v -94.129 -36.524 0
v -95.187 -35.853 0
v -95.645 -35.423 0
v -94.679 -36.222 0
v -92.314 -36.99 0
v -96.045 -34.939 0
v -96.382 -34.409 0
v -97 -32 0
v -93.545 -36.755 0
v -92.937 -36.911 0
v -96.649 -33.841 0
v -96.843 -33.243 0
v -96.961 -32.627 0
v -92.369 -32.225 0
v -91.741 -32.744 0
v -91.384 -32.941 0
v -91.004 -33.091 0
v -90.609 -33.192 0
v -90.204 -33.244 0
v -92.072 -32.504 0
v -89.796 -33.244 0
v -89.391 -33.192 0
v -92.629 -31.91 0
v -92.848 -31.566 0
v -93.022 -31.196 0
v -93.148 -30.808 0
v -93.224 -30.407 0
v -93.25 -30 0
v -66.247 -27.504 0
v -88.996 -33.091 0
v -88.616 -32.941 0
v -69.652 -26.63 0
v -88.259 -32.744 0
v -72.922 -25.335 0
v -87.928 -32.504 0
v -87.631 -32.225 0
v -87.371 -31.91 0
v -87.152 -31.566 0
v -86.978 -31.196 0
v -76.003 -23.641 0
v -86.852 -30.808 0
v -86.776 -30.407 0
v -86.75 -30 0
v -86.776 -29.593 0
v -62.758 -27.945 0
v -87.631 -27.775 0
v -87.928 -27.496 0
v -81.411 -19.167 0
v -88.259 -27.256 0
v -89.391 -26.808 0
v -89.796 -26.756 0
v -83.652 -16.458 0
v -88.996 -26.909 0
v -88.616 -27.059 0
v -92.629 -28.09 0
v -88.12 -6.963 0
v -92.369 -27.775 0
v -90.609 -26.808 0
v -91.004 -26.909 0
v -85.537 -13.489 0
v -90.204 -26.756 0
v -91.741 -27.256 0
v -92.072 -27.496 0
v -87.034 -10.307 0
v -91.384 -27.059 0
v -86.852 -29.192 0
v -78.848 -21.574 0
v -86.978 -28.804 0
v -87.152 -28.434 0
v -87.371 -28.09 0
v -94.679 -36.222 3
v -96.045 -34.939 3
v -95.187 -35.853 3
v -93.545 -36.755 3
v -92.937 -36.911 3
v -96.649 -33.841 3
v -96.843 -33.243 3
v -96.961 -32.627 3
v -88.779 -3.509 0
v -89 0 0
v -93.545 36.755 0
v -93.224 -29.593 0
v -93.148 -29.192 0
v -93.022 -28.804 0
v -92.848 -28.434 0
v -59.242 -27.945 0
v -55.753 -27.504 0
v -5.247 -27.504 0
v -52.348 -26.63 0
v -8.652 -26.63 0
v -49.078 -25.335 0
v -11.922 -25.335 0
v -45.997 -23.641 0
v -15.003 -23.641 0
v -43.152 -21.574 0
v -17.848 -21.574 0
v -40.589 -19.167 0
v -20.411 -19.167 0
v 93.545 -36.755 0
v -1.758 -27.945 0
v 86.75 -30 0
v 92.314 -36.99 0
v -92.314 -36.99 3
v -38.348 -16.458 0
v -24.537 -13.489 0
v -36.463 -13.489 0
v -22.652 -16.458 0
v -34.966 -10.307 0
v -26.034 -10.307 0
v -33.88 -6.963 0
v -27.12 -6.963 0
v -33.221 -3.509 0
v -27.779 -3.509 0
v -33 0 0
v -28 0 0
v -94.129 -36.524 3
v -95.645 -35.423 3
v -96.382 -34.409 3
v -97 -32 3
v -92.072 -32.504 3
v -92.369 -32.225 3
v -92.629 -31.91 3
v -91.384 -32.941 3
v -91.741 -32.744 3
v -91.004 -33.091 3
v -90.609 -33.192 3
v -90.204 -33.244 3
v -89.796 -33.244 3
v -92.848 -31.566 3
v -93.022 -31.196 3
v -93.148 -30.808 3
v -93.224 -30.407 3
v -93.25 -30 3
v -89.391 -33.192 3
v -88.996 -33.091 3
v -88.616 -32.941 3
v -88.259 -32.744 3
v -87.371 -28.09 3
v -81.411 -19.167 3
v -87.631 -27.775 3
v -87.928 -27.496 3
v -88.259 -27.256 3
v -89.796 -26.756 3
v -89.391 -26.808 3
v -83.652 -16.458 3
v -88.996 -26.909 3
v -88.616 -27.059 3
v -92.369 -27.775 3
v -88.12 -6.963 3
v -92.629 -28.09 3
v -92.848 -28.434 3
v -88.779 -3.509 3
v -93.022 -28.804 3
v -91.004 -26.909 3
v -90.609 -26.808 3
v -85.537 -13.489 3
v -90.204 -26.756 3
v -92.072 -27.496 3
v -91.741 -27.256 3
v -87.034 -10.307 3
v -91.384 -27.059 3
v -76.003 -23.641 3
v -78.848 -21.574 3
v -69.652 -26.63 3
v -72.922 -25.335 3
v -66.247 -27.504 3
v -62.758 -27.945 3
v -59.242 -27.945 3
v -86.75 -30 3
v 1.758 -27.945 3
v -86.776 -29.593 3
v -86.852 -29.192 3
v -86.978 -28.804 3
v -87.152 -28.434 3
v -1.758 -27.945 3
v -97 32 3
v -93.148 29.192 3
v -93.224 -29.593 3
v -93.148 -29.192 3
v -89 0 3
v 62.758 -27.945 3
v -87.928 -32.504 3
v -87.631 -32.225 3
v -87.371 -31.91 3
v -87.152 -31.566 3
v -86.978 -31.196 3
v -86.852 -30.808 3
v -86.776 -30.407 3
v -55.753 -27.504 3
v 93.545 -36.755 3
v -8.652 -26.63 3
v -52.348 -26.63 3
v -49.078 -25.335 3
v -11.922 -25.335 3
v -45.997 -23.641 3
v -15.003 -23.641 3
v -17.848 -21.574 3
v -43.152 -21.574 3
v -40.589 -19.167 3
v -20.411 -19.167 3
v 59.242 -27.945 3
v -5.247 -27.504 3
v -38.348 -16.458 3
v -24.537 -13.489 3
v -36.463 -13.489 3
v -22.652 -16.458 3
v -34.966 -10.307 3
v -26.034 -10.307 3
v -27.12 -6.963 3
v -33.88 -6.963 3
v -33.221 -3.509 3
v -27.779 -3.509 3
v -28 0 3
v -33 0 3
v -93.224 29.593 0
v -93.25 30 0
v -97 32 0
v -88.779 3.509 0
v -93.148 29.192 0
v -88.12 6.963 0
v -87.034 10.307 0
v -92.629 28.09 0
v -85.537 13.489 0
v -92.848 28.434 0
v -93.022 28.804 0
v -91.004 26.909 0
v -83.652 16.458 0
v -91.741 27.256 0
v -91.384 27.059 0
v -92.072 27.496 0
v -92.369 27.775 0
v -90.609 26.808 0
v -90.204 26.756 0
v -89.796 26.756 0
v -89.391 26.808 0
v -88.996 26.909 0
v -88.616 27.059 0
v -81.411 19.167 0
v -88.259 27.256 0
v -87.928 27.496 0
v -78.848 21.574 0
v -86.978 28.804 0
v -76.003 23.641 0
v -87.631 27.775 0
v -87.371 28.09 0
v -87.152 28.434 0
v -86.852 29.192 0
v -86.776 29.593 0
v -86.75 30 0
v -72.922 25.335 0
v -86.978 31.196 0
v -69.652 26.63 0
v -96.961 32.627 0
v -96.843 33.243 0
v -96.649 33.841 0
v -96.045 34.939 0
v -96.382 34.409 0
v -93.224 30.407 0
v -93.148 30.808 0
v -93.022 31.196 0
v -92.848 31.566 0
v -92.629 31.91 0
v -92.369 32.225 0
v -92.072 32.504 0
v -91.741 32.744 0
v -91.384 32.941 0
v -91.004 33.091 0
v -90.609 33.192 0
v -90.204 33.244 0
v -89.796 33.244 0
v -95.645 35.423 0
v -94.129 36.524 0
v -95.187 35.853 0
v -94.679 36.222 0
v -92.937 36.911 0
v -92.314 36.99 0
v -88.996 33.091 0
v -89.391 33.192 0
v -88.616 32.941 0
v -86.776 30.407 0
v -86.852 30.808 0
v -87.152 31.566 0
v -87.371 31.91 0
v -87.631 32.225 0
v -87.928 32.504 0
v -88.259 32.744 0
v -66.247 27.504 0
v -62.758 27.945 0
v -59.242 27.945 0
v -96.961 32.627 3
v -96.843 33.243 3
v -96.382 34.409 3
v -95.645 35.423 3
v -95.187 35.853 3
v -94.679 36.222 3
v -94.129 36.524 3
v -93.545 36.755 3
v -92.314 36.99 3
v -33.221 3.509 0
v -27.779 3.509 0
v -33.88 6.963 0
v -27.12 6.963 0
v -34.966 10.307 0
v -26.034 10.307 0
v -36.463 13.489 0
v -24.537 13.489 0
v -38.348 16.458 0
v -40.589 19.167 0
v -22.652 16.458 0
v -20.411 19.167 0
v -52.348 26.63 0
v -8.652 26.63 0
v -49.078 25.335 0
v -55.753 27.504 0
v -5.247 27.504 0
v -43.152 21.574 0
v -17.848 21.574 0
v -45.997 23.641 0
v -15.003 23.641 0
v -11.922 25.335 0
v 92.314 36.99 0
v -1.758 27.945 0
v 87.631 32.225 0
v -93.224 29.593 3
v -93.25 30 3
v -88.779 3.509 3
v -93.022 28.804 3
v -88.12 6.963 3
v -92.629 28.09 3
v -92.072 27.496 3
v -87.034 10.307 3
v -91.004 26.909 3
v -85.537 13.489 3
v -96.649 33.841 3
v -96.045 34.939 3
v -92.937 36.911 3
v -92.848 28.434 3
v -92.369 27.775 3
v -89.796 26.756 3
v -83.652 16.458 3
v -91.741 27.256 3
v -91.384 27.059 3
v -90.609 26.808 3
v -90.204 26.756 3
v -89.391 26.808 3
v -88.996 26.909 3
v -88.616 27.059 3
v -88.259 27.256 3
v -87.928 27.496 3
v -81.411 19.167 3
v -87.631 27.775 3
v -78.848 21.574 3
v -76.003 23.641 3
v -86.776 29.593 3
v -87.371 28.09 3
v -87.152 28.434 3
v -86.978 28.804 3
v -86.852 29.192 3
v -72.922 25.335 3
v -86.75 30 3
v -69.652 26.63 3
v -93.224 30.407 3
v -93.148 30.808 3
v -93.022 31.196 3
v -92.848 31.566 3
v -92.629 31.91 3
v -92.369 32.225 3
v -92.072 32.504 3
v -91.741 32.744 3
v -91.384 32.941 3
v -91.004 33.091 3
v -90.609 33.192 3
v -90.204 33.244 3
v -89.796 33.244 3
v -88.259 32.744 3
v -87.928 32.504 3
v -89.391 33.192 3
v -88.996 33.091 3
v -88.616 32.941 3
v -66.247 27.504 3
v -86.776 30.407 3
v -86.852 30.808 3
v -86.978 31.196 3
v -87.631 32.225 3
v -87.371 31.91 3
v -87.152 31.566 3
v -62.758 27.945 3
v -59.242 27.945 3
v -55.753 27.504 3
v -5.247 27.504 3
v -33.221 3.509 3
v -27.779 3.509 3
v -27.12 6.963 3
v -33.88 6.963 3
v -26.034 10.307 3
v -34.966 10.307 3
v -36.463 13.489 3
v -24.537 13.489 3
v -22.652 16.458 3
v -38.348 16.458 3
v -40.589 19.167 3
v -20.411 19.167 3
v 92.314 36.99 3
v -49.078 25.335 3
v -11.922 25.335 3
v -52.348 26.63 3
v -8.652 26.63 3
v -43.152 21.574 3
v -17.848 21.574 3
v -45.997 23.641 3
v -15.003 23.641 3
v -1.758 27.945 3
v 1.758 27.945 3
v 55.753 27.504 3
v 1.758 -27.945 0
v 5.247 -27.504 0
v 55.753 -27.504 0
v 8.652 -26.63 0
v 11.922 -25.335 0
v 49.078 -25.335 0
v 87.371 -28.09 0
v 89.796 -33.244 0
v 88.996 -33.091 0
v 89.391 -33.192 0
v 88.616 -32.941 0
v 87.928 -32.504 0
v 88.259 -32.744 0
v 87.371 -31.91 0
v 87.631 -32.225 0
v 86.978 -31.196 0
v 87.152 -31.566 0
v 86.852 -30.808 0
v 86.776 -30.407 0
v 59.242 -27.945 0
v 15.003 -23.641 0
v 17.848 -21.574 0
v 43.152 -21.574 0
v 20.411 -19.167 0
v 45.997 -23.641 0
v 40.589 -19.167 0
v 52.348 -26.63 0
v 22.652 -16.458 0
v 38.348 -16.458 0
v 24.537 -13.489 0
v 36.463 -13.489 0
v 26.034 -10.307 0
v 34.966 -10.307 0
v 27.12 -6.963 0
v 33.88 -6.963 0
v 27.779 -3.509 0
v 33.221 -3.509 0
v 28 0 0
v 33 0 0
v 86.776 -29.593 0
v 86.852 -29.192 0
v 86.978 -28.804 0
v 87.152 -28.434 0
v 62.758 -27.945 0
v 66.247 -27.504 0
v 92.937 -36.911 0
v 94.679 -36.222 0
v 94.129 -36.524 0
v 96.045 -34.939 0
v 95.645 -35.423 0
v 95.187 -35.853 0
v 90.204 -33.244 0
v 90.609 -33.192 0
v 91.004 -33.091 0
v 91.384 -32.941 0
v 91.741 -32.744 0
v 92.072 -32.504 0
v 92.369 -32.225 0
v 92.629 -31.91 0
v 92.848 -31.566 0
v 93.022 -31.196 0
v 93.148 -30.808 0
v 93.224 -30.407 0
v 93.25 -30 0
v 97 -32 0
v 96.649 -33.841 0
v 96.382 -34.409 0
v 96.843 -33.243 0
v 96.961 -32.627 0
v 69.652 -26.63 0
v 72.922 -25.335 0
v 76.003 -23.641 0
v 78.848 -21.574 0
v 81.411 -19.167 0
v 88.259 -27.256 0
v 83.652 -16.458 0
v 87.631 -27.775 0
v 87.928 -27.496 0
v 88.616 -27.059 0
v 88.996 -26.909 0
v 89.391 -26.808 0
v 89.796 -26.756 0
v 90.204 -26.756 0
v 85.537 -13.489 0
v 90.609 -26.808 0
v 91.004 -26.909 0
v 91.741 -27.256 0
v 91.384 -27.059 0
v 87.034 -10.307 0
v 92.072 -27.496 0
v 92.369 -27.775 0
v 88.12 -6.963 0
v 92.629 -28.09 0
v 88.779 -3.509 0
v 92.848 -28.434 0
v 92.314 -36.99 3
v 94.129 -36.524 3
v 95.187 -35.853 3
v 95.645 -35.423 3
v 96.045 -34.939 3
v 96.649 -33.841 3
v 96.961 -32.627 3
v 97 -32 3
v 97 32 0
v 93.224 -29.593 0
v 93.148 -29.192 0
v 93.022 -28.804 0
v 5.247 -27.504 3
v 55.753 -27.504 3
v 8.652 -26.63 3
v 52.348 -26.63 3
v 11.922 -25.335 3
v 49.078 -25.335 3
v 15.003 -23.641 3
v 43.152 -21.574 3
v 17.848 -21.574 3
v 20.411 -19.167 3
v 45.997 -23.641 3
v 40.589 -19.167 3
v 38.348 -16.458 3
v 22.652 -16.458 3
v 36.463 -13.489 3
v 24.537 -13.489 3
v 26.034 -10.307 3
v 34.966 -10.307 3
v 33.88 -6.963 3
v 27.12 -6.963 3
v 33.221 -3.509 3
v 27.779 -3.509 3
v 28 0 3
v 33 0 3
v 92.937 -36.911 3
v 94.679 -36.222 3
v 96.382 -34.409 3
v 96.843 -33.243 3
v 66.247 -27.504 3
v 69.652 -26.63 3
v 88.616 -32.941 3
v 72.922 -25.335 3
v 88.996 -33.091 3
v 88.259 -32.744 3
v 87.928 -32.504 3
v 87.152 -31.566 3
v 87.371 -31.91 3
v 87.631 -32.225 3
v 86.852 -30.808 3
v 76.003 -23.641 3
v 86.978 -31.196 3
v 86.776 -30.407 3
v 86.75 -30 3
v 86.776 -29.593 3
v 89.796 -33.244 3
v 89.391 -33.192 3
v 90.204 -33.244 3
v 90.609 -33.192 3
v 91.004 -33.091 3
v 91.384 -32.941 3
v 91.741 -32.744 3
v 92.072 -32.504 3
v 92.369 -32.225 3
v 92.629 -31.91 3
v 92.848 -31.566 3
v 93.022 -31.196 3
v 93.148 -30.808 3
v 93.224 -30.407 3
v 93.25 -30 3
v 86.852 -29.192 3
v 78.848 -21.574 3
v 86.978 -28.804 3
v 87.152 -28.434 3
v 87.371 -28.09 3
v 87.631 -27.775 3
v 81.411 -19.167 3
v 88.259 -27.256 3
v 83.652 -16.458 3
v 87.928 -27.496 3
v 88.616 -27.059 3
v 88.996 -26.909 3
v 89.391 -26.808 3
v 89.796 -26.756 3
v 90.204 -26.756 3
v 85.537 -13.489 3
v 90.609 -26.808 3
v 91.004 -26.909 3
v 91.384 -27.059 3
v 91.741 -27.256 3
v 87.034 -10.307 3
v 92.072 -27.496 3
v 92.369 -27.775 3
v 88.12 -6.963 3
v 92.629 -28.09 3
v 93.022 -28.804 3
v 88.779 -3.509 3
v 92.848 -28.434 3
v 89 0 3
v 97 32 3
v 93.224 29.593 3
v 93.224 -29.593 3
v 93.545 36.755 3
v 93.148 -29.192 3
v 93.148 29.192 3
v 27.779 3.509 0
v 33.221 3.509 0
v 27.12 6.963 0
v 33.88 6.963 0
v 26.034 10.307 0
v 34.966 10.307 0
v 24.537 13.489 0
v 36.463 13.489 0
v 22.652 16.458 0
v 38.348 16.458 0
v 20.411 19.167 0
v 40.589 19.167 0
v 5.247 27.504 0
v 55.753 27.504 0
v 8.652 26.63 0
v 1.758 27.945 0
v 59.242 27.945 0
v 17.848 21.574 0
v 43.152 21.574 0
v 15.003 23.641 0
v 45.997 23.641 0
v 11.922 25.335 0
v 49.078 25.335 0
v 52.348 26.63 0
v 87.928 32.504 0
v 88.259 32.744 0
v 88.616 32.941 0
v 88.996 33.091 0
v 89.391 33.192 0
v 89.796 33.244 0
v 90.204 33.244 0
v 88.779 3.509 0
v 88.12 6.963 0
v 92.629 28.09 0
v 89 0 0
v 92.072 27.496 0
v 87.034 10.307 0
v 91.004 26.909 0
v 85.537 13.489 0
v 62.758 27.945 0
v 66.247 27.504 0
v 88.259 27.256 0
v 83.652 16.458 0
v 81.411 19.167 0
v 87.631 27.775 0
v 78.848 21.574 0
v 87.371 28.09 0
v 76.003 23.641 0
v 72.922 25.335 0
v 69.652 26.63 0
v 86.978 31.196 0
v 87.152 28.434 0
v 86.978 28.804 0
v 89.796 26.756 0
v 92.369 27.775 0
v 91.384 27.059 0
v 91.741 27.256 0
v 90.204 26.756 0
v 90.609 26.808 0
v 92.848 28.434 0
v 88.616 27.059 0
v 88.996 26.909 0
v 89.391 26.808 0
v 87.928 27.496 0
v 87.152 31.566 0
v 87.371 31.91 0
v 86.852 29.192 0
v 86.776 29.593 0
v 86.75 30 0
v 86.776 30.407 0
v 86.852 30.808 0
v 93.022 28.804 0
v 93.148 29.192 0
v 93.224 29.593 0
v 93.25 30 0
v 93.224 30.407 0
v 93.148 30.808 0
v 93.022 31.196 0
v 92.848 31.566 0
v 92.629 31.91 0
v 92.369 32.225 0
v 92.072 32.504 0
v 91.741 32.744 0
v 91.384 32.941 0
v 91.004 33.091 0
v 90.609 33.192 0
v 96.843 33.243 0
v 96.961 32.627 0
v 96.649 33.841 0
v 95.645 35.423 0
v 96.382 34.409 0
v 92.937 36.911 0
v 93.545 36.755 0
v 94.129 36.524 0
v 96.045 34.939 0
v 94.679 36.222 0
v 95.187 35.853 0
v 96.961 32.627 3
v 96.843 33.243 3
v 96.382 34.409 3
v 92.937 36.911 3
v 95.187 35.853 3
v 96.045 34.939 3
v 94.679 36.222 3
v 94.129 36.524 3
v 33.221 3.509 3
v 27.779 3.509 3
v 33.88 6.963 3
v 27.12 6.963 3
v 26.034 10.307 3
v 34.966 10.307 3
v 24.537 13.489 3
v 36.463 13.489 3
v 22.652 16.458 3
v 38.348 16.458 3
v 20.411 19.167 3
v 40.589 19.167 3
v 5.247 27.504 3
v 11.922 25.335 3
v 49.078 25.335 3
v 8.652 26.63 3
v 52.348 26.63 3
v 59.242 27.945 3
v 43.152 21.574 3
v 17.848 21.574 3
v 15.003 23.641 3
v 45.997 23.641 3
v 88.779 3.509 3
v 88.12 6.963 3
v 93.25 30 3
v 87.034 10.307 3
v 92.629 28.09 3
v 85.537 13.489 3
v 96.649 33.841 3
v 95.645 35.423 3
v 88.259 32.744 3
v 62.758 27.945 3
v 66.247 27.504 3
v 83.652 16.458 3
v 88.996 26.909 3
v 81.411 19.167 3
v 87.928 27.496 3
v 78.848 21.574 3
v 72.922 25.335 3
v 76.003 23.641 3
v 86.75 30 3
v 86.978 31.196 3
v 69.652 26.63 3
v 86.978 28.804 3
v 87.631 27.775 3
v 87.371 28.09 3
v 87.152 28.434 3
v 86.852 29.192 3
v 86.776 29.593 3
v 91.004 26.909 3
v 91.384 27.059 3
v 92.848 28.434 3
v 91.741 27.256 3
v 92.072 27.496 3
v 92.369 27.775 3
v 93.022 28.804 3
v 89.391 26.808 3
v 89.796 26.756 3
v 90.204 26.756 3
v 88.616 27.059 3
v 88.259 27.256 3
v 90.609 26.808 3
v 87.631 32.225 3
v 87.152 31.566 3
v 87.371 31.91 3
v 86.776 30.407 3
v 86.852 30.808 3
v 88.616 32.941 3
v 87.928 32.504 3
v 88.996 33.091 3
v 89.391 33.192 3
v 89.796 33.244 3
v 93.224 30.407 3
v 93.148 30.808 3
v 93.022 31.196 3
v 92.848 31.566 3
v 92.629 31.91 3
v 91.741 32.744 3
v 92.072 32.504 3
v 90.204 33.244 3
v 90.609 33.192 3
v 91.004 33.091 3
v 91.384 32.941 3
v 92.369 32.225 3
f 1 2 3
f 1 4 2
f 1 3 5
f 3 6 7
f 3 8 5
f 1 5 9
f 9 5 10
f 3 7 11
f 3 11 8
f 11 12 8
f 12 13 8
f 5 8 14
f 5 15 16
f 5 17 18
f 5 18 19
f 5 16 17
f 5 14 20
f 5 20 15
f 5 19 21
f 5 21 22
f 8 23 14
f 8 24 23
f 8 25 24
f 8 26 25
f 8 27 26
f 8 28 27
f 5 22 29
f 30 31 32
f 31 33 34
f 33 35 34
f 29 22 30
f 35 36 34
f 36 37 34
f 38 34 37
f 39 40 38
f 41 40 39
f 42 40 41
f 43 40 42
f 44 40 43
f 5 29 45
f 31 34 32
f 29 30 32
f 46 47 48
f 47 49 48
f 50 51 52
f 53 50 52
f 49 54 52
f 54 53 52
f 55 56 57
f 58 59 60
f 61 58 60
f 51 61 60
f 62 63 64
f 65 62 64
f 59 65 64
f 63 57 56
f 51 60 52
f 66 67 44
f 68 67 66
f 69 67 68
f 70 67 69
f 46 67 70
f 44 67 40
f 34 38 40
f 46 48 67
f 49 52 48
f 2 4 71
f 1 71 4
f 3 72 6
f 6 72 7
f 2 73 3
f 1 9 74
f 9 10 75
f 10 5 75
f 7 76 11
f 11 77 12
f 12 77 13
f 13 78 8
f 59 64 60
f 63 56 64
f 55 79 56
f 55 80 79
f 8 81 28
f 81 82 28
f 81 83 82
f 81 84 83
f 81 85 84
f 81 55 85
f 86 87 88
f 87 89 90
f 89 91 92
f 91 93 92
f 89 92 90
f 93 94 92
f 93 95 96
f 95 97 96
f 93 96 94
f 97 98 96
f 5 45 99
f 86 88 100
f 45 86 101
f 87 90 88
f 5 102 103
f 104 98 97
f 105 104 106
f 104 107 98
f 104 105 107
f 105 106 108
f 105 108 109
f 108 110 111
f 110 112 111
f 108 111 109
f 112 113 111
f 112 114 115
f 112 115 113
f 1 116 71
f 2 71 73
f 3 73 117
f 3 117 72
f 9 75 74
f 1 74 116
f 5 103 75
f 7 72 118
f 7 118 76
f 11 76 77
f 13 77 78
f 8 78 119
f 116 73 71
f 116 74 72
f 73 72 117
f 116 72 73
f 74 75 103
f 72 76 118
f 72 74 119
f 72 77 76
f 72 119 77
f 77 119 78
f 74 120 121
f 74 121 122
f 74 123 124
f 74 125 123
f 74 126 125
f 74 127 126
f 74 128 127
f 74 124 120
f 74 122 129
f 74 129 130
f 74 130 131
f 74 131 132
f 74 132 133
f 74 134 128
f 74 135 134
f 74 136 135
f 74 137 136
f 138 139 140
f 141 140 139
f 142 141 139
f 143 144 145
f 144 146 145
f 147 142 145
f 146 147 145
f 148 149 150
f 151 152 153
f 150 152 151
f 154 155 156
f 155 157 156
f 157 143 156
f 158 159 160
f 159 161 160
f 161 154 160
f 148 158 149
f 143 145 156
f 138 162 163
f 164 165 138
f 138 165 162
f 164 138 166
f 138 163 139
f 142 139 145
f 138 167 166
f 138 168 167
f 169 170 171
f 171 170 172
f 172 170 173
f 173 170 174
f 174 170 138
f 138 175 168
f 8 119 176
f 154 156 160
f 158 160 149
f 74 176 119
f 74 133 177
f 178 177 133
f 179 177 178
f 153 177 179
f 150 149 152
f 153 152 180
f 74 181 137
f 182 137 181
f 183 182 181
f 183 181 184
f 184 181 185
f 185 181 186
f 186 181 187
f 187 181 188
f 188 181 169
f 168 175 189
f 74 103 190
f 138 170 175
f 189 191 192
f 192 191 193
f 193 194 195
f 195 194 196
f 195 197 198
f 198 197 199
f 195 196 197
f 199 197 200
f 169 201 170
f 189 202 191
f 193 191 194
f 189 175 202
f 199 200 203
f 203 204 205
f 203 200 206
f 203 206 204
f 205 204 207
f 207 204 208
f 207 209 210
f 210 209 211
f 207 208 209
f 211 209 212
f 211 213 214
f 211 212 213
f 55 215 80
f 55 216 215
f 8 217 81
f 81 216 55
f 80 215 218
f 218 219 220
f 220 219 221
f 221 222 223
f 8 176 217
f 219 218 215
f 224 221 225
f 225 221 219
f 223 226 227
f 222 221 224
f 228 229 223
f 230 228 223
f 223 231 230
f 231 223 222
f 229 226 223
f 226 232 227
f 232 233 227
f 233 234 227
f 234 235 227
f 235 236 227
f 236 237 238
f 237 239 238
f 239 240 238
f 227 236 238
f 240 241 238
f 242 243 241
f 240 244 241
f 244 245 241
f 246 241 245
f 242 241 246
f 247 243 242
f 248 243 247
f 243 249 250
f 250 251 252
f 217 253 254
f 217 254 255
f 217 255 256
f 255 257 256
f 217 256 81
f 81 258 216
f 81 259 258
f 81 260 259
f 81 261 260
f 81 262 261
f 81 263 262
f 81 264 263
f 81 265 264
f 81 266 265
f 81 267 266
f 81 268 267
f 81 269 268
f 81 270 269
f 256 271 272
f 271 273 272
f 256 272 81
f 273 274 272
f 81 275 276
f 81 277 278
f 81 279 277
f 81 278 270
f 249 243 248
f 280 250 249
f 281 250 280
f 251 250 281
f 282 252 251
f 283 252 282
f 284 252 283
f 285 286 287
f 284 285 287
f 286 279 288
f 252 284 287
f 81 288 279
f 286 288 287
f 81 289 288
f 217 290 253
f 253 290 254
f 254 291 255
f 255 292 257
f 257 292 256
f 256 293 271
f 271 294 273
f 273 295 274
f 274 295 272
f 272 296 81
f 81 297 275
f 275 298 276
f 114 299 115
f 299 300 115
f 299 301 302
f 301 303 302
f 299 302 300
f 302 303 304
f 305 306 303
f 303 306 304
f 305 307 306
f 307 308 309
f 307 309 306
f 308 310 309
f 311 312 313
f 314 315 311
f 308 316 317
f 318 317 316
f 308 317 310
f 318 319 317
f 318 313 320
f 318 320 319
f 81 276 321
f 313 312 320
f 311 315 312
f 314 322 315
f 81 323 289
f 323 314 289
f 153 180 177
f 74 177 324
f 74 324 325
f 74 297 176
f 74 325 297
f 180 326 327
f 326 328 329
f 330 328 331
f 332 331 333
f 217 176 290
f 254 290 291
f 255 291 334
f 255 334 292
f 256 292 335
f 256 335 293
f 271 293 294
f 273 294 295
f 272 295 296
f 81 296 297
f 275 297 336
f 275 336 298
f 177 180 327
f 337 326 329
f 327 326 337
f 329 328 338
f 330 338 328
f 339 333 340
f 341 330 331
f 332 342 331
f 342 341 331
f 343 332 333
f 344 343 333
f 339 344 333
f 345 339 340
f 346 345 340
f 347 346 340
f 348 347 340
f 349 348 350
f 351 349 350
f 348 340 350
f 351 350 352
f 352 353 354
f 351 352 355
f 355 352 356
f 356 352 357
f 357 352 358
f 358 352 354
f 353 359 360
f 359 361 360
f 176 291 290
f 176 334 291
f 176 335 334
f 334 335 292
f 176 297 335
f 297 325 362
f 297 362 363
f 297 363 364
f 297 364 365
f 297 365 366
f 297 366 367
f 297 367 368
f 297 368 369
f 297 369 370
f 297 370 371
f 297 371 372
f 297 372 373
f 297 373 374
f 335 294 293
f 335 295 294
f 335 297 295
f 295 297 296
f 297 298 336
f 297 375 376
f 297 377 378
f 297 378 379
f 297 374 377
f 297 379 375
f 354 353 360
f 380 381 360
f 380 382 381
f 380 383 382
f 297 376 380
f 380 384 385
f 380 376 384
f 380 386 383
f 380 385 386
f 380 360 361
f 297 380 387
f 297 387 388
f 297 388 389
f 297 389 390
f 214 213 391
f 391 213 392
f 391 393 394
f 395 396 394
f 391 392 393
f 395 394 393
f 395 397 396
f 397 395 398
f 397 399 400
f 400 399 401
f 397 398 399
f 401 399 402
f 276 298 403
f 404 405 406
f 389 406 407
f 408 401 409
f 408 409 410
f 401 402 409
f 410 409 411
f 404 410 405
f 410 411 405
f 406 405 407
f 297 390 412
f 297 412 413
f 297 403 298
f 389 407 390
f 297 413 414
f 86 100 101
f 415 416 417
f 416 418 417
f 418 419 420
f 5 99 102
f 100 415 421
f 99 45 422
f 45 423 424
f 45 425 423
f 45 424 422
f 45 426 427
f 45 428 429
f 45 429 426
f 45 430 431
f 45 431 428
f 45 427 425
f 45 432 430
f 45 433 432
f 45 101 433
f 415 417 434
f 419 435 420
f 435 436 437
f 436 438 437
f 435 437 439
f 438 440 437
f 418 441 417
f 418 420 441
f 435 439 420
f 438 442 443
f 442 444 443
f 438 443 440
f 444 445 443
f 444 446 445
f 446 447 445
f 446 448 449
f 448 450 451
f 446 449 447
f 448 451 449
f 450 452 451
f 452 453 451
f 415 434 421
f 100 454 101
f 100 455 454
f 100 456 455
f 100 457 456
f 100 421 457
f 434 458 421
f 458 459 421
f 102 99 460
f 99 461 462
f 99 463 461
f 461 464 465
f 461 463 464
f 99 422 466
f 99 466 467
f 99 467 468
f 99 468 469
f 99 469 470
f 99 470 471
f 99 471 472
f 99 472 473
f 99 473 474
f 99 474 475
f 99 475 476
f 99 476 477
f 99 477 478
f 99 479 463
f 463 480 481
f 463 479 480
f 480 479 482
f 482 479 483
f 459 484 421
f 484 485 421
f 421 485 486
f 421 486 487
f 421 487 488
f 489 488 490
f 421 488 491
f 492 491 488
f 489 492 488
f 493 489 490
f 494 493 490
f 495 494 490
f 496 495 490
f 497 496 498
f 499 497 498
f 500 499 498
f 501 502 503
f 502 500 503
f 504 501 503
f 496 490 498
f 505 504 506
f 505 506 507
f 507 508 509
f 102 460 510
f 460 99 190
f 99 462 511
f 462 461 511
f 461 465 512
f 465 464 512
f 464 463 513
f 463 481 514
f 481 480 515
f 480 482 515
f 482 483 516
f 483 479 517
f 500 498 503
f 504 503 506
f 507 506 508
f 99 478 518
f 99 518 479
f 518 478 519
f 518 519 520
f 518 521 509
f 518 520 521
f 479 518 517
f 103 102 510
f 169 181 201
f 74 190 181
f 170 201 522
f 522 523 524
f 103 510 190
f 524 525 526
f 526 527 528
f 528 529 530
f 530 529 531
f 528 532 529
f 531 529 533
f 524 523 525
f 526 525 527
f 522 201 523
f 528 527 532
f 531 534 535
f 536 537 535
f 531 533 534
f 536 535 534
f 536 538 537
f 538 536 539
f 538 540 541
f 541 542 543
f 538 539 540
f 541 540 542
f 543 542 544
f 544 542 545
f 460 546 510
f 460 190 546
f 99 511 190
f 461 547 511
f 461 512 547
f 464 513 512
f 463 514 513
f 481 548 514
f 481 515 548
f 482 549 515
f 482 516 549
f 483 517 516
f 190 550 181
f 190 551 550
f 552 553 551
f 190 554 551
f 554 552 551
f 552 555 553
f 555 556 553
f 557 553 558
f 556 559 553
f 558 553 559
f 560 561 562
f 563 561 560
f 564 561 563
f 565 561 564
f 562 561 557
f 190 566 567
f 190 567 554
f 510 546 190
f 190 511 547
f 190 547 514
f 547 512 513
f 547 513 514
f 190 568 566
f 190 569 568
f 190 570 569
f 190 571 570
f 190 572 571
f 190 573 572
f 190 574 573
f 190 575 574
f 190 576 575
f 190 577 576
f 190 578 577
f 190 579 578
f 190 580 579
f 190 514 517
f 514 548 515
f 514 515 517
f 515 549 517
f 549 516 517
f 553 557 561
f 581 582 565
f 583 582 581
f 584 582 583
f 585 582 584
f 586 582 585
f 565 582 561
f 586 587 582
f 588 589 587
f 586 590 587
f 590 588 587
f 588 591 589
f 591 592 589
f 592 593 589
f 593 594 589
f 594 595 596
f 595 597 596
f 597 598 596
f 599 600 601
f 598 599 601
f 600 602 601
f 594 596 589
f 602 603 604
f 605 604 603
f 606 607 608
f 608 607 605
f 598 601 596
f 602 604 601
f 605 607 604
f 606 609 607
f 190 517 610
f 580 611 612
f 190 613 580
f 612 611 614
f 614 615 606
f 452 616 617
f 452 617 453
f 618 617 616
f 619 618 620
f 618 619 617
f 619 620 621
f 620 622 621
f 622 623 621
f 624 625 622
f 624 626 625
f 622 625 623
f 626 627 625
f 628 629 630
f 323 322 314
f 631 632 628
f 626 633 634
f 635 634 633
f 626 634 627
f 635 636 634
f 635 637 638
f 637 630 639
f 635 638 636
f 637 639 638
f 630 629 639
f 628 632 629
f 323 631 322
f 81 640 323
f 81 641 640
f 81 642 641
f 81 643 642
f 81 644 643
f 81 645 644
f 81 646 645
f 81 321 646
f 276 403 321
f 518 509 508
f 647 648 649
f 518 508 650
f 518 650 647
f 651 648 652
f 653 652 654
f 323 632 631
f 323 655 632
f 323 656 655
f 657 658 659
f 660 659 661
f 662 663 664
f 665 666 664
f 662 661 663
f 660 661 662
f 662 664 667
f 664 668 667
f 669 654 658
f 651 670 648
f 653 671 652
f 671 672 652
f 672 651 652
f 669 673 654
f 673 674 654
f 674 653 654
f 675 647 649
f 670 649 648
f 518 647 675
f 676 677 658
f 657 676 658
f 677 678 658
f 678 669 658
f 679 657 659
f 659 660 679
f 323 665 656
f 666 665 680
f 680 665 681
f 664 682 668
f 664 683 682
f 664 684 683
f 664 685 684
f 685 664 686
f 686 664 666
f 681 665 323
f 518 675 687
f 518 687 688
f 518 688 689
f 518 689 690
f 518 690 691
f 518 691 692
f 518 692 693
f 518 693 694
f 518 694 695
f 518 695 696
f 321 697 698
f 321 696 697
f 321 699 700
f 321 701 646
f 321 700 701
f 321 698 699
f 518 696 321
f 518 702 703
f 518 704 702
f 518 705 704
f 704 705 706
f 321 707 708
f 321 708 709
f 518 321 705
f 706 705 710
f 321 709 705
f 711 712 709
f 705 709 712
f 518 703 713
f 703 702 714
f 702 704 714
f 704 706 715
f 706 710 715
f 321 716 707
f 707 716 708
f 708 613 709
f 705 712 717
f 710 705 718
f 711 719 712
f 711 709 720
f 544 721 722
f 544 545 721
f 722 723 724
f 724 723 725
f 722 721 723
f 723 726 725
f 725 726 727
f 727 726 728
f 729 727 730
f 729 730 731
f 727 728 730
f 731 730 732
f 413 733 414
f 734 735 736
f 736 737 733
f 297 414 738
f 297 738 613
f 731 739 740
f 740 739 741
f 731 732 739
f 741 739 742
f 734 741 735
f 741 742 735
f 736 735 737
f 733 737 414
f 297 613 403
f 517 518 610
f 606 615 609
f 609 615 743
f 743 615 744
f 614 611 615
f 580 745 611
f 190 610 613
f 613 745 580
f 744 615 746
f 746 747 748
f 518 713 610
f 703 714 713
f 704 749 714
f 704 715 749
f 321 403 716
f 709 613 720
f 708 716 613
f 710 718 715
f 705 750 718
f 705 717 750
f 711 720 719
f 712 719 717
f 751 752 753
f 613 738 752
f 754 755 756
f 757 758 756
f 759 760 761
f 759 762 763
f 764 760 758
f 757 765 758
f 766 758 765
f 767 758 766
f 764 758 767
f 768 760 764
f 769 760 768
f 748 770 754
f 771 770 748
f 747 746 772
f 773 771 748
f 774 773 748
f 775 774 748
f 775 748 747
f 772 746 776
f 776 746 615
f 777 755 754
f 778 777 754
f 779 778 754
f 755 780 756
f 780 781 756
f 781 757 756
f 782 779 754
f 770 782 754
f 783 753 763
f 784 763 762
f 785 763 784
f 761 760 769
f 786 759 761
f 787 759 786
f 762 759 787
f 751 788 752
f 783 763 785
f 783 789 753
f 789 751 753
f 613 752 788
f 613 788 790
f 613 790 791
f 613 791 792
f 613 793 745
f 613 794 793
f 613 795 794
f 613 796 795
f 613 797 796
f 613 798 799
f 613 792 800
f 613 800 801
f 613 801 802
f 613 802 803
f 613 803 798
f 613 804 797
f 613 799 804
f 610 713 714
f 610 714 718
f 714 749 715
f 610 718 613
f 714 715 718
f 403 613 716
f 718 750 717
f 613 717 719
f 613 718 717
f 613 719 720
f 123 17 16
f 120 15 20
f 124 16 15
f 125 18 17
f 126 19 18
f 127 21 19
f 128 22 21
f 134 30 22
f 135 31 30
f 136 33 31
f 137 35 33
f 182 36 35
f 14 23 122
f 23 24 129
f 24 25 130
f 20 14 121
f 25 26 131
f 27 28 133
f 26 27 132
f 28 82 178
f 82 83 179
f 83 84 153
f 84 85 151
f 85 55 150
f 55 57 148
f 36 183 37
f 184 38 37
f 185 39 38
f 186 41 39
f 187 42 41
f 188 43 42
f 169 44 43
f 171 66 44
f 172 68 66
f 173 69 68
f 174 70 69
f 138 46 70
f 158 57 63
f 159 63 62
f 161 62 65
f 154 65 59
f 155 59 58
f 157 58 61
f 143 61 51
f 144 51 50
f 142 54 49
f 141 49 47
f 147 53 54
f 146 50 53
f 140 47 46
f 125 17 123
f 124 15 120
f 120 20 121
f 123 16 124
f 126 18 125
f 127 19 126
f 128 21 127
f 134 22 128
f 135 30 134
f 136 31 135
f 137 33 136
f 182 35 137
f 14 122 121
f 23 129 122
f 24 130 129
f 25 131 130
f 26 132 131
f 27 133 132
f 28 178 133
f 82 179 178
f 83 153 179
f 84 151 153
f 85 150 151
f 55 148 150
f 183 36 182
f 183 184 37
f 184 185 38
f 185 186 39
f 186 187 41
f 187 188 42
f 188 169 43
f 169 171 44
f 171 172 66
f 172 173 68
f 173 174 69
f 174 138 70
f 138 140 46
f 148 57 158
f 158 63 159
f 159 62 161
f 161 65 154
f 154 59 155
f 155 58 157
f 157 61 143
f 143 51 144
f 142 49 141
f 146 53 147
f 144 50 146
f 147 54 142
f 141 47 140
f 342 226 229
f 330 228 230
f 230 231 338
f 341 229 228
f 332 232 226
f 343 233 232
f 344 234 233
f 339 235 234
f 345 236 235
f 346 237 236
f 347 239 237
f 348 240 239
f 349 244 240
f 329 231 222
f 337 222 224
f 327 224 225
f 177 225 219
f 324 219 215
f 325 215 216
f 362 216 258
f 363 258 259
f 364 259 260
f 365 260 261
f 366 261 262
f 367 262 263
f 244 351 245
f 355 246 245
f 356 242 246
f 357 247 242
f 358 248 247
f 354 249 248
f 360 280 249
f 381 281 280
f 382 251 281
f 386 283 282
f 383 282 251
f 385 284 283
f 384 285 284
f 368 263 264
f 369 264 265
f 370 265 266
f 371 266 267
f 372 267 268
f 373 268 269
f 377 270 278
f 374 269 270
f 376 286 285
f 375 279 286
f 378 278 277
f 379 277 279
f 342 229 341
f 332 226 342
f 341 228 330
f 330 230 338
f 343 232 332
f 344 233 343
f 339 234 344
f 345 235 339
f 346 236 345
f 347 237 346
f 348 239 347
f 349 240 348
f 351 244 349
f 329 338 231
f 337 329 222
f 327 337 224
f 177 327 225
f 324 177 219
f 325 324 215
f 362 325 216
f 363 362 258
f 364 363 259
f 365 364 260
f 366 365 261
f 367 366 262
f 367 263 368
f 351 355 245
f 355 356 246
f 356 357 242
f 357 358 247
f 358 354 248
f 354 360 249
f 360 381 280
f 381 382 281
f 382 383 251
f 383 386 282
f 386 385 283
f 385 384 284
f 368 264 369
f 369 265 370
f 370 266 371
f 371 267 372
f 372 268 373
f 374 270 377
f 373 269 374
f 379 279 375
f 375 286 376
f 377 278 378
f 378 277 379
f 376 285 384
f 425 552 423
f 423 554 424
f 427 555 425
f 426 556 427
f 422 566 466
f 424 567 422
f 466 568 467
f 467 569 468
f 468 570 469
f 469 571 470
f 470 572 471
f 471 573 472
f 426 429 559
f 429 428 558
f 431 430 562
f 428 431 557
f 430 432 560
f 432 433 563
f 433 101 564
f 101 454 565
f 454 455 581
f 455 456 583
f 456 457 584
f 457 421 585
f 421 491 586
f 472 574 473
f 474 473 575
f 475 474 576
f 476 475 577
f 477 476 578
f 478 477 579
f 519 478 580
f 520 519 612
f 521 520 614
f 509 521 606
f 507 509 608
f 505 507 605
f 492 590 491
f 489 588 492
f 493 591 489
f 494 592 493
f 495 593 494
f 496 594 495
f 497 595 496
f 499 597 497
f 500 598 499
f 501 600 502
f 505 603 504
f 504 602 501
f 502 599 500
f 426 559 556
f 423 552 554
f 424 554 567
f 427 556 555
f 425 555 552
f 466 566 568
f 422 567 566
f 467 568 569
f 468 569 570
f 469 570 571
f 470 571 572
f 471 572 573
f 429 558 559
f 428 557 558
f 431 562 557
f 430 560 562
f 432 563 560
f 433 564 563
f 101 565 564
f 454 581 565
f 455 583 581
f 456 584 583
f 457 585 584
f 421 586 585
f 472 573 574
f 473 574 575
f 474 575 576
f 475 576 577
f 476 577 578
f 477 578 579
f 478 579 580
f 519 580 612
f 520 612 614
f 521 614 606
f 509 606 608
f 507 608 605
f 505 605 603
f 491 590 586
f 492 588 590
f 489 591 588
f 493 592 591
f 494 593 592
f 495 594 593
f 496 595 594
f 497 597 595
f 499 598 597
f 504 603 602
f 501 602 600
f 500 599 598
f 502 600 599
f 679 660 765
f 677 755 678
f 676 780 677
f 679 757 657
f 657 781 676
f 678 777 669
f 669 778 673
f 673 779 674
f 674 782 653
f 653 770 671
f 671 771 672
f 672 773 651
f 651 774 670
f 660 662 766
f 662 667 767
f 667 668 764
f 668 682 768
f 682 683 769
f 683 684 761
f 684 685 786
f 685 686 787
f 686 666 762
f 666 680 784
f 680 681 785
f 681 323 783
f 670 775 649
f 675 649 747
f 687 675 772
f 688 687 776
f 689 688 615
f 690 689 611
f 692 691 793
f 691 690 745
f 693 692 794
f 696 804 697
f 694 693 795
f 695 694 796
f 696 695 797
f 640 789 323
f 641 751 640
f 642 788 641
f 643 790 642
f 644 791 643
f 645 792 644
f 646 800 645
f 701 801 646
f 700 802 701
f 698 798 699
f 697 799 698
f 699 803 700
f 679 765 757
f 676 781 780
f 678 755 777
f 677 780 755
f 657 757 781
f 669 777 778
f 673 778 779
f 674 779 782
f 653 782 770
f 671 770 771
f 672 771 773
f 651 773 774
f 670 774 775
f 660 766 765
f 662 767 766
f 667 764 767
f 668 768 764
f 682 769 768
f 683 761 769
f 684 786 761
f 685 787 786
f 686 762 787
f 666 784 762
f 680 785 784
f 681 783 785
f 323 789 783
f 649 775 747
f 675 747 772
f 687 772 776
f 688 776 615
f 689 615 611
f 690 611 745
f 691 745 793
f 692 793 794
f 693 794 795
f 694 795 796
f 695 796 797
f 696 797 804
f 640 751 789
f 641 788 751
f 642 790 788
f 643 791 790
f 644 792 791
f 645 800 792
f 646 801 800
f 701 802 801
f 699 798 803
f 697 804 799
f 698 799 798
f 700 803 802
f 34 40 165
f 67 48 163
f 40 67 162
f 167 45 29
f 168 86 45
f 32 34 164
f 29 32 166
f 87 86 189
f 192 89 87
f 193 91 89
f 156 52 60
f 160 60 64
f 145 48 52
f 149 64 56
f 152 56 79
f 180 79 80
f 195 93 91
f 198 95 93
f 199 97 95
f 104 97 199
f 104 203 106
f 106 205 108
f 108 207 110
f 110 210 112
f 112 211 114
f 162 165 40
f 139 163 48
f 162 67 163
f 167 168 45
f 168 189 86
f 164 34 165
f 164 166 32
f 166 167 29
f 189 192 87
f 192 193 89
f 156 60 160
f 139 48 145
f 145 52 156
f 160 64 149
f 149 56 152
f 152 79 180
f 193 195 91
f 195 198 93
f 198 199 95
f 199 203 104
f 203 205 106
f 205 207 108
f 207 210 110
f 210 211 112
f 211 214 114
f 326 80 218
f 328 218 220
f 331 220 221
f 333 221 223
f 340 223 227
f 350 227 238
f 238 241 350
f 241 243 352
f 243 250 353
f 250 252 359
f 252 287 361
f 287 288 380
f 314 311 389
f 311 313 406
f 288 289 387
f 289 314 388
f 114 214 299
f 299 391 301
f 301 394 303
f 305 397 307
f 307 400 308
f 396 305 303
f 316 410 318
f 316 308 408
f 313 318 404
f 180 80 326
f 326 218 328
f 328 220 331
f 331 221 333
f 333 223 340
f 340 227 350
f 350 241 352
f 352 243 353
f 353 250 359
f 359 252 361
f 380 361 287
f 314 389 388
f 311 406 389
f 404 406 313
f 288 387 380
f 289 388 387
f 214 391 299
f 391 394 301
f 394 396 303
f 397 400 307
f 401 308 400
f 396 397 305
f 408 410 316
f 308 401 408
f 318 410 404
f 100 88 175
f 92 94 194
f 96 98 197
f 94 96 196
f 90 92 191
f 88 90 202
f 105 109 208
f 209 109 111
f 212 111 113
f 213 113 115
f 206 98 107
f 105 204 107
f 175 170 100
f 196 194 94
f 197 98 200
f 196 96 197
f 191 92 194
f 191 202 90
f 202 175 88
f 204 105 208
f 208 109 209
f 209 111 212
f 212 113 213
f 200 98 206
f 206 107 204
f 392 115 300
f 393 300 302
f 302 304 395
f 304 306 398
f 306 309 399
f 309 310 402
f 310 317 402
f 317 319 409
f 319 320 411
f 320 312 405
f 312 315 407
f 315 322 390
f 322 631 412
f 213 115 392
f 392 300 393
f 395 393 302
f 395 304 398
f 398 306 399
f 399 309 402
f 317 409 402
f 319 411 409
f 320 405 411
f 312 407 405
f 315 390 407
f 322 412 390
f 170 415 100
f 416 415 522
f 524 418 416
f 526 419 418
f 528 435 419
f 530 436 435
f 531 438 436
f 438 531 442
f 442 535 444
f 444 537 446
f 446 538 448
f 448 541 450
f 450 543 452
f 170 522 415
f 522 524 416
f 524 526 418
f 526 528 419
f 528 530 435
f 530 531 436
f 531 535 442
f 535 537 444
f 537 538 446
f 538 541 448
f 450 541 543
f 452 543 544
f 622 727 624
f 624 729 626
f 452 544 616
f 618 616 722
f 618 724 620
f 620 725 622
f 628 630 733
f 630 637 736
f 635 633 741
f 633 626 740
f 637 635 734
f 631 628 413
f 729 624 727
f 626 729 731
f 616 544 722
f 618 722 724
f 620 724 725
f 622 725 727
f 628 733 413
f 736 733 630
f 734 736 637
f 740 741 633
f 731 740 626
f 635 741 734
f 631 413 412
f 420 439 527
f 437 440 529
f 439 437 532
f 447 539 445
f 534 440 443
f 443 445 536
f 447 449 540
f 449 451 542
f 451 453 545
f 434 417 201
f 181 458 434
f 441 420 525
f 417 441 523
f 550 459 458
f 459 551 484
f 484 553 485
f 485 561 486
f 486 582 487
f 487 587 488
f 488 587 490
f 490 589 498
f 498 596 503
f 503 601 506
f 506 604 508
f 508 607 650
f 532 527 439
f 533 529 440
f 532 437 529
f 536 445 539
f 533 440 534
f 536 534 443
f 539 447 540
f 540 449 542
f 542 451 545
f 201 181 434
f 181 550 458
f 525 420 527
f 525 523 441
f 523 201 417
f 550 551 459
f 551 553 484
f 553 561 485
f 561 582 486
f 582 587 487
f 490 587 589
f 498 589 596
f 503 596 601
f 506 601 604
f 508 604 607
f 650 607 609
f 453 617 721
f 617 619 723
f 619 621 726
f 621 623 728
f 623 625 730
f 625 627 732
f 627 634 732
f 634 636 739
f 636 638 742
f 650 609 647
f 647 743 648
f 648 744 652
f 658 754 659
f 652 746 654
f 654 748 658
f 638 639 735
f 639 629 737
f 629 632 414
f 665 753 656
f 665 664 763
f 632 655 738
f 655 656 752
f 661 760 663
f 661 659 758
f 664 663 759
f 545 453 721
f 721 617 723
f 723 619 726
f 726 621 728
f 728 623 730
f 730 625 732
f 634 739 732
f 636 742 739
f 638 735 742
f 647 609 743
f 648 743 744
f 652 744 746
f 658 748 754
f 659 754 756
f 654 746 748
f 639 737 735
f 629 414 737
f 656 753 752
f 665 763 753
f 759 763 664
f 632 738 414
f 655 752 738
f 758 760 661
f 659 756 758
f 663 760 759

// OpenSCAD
$fn = 50;

difference() {
	union() {
		hull() {
			translate(v = [-92.0, 32.0, 0]) {
				cylinder(h = 3, r = 5);
			}
			translate(v = [92.0, 32.0, 0]) {
				cylinder(h = 3, r = 5);
			}
			translate(v = [-92.0, -32.0, 0]) {
				cylinder(h = 3, r = 5);
			}
			translate(v = [92.0, -32.0, 0]) {
				cylinder(h = 3, r = 5);
			}
		}
	}
	union() {
		translate(v = [-90.0, -30.0, -100.0]) {
			cylinder(h = 200, r = 3.25);
		}
		translate(v = [-90.0, 30.0, -100.0]) {
			cylinder(h = 200, r = 3.25);
		}
		translate(v = [90.0, -30.0, -100.0]) {
			cylinder(h = 200, r = 3.25);
		}
		translate(v = [90.0, 30.0, -100.0]) {
			cylinder(h = 200, r = 3.25);
		}
		translate(v = [-90.0, -30.0, -100.0]) {
			cylinder(h = 200, r = 1.8);
		}
		translate(v = [-90.0, 30.0, -100.0]) {
			cylinder(h = 200, r = 1.8);
		}
		translate(v = [90.0, -30.0, -100.0]) {
			cylinder(h = 200, r = 1.8);
		}
		translate(v = [90.0, 30.0, -100.0]) {
			cylinder(h = 200, r = 1.8);
		}
		translate(v = [-61.0, 0, 0.0]) {
			cylinder(h = 3, r = 28.0);
		}
		cylinder(h = 3, r = 28.0);
		translate(v = [61.0, 0, 0.0]) {
			cylinder(h = 3, r = 28.0);
		}
	}
}
